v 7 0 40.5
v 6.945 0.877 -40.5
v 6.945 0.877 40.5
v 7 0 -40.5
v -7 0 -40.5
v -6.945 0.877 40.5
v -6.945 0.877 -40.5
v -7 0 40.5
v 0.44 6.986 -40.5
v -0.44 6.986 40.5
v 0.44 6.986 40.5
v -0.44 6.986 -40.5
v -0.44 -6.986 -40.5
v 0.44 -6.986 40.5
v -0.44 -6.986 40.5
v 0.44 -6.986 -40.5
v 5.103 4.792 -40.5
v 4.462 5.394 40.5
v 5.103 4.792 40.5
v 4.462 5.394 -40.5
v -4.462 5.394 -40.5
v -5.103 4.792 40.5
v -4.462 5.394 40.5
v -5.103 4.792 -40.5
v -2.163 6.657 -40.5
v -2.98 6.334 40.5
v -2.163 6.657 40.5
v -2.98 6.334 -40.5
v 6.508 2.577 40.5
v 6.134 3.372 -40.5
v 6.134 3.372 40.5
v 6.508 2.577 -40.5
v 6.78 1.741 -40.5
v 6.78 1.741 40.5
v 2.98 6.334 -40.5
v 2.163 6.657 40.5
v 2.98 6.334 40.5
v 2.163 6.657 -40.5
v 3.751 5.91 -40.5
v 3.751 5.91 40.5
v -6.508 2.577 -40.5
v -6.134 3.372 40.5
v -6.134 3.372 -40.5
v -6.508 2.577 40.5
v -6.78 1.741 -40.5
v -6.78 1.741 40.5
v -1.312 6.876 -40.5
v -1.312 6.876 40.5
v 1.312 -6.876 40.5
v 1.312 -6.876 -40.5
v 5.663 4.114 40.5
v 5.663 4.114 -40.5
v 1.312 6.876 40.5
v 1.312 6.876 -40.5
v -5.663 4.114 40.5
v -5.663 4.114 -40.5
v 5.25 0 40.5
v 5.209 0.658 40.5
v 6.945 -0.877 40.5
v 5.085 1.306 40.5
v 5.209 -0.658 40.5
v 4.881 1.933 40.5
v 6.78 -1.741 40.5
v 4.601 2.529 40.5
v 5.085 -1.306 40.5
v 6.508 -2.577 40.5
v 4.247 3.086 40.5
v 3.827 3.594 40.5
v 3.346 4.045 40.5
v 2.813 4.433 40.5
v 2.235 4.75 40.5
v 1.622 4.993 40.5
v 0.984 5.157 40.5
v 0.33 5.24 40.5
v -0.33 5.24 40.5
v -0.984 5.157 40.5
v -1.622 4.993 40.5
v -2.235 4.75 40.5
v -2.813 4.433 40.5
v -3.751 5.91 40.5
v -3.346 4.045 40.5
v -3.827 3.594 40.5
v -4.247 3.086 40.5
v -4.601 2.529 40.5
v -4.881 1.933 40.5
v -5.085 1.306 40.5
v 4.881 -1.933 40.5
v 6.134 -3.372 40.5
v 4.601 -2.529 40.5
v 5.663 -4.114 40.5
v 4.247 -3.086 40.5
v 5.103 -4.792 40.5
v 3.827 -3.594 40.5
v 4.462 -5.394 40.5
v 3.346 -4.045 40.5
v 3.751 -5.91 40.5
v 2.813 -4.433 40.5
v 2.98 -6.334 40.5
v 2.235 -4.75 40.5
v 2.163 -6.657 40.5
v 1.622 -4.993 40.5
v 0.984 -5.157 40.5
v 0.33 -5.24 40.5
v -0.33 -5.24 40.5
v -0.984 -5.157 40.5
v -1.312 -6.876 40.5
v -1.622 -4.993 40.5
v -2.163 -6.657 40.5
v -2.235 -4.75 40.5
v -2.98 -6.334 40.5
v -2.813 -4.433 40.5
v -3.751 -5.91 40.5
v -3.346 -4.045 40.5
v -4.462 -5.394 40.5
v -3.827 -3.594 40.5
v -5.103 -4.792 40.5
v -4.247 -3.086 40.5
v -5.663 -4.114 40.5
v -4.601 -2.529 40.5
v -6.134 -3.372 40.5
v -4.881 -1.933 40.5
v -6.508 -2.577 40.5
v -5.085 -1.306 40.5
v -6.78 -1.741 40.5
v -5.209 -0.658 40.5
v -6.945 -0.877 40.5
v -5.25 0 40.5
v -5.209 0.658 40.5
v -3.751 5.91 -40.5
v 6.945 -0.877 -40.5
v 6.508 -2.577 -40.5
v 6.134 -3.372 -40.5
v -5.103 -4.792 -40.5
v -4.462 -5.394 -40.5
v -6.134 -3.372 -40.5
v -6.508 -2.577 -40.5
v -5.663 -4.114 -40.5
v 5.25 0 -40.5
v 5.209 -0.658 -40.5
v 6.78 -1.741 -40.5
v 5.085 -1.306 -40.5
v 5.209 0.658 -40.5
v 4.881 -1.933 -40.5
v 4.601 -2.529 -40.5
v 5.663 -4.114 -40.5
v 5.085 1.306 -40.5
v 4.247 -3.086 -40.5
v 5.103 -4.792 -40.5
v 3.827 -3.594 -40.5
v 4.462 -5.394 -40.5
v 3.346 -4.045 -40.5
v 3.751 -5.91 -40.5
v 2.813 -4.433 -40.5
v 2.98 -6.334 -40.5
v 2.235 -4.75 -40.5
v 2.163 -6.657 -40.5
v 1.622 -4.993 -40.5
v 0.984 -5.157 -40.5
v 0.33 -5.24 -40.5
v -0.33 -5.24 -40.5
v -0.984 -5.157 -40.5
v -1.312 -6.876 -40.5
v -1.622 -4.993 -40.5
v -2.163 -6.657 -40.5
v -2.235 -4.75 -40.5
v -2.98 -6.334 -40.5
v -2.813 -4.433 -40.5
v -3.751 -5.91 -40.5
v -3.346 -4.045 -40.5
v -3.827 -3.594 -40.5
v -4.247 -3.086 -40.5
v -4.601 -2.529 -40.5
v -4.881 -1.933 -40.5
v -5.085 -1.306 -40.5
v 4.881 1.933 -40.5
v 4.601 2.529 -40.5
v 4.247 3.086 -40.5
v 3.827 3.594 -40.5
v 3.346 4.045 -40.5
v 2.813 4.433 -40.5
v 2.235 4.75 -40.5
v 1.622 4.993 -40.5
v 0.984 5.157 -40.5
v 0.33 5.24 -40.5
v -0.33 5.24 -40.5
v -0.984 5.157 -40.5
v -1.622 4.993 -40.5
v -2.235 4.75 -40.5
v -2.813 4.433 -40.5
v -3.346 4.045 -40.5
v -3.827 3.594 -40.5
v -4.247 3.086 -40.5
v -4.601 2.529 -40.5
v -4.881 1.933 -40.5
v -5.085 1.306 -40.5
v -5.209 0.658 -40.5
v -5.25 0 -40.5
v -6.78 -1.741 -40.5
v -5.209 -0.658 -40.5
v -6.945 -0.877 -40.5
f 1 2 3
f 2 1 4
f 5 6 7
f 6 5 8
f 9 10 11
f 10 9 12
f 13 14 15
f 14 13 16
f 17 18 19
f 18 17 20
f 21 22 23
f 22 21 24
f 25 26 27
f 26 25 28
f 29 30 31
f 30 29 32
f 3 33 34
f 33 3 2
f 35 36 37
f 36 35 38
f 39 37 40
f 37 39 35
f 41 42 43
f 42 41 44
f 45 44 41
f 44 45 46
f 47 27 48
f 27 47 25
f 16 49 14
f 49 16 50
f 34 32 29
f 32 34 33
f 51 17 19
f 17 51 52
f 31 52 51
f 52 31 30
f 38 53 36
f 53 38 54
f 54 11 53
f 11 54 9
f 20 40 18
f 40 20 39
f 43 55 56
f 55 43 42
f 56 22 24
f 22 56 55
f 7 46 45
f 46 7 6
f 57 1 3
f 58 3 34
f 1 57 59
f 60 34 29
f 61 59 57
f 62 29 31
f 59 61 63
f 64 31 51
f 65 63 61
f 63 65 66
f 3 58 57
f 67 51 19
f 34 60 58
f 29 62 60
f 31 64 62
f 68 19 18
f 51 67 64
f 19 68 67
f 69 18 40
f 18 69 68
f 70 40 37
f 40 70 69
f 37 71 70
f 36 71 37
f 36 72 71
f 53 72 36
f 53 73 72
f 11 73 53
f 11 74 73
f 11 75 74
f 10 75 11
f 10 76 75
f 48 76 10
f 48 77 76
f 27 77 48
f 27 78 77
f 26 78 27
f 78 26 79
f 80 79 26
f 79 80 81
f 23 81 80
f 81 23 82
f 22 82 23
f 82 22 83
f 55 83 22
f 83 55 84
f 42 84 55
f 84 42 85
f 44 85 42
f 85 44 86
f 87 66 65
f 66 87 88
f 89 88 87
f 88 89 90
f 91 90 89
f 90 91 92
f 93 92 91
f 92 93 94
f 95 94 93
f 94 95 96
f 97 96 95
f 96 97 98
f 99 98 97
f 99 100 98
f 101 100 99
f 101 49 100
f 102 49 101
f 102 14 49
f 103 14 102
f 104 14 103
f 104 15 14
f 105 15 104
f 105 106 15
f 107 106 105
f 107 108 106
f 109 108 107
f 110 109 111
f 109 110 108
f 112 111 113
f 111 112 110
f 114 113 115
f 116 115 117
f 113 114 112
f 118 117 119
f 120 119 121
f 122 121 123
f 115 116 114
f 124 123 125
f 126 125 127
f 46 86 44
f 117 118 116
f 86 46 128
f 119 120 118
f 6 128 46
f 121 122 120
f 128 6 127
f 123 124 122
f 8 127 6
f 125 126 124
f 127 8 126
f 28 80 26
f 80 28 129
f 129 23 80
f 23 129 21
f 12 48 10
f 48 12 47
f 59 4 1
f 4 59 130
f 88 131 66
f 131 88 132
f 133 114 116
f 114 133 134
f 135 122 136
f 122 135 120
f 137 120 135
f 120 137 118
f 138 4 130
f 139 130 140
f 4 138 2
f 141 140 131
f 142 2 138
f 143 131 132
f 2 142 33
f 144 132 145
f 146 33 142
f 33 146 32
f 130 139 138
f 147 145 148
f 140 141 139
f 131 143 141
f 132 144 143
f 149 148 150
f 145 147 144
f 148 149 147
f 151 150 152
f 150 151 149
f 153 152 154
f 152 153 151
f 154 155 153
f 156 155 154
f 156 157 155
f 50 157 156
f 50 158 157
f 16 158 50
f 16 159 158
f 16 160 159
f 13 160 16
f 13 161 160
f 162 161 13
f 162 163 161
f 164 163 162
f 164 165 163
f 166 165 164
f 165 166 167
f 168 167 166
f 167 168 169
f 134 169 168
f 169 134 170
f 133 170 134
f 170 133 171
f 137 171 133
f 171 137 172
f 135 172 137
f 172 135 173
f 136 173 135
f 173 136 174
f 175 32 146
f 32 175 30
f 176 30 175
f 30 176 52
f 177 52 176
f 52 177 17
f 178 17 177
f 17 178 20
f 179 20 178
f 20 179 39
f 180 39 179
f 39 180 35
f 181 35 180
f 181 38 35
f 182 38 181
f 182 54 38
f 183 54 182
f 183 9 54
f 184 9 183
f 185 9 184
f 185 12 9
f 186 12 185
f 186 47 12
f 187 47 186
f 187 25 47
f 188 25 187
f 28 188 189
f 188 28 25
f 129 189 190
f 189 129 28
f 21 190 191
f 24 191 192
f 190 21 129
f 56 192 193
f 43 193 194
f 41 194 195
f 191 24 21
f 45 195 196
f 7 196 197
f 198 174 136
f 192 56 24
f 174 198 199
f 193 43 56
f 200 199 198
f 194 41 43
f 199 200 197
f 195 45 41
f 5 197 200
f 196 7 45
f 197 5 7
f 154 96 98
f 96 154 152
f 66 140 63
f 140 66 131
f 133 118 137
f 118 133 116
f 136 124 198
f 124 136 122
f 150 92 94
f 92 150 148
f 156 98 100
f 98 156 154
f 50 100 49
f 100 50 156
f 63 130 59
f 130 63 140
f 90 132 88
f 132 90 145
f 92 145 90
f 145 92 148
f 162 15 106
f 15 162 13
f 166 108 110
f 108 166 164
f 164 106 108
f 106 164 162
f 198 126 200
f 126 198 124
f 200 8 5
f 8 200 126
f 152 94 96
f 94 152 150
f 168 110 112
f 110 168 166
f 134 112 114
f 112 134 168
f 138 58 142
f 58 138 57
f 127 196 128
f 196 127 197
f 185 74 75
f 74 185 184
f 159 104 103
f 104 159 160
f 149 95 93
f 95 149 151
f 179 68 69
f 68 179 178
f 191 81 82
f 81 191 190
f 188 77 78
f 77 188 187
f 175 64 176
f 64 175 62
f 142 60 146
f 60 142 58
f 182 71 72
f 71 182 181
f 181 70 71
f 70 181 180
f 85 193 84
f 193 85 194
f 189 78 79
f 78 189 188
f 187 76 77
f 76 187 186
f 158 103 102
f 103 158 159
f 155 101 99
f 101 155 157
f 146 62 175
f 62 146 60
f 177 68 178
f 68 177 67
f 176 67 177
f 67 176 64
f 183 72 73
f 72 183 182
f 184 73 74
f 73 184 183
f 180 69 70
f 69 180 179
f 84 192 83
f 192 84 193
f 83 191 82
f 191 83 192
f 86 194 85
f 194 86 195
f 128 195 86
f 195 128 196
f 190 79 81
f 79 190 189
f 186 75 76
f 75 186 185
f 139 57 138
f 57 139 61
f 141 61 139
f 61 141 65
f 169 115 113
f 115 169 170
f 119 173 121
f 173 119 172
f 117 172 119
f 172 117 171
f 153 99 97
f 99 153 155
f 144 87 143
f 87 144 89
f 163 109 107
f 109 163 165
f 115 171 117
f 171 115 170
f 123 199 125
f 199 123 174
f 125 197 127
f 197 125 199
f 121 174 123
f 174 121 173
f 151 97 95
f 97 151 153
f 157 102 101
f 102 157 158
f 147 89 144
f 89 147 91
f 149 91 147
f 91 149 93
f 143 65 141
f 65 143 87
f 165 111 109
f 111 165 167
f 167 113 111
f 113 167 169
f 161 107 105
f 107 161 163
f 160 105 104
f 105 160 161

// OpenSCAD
$fn = 50;


difference() {
	union() {
		translate(v = [0, 0, -40.5000000000]) {
			cylinder(h = 81, r = 7.0000000000);
		}
	}
	union() {
		translate(v = [0, 0, -100.0000000000]) {
			cylinder(h = 200, r = 5.2500000000);
		}
	}
}
